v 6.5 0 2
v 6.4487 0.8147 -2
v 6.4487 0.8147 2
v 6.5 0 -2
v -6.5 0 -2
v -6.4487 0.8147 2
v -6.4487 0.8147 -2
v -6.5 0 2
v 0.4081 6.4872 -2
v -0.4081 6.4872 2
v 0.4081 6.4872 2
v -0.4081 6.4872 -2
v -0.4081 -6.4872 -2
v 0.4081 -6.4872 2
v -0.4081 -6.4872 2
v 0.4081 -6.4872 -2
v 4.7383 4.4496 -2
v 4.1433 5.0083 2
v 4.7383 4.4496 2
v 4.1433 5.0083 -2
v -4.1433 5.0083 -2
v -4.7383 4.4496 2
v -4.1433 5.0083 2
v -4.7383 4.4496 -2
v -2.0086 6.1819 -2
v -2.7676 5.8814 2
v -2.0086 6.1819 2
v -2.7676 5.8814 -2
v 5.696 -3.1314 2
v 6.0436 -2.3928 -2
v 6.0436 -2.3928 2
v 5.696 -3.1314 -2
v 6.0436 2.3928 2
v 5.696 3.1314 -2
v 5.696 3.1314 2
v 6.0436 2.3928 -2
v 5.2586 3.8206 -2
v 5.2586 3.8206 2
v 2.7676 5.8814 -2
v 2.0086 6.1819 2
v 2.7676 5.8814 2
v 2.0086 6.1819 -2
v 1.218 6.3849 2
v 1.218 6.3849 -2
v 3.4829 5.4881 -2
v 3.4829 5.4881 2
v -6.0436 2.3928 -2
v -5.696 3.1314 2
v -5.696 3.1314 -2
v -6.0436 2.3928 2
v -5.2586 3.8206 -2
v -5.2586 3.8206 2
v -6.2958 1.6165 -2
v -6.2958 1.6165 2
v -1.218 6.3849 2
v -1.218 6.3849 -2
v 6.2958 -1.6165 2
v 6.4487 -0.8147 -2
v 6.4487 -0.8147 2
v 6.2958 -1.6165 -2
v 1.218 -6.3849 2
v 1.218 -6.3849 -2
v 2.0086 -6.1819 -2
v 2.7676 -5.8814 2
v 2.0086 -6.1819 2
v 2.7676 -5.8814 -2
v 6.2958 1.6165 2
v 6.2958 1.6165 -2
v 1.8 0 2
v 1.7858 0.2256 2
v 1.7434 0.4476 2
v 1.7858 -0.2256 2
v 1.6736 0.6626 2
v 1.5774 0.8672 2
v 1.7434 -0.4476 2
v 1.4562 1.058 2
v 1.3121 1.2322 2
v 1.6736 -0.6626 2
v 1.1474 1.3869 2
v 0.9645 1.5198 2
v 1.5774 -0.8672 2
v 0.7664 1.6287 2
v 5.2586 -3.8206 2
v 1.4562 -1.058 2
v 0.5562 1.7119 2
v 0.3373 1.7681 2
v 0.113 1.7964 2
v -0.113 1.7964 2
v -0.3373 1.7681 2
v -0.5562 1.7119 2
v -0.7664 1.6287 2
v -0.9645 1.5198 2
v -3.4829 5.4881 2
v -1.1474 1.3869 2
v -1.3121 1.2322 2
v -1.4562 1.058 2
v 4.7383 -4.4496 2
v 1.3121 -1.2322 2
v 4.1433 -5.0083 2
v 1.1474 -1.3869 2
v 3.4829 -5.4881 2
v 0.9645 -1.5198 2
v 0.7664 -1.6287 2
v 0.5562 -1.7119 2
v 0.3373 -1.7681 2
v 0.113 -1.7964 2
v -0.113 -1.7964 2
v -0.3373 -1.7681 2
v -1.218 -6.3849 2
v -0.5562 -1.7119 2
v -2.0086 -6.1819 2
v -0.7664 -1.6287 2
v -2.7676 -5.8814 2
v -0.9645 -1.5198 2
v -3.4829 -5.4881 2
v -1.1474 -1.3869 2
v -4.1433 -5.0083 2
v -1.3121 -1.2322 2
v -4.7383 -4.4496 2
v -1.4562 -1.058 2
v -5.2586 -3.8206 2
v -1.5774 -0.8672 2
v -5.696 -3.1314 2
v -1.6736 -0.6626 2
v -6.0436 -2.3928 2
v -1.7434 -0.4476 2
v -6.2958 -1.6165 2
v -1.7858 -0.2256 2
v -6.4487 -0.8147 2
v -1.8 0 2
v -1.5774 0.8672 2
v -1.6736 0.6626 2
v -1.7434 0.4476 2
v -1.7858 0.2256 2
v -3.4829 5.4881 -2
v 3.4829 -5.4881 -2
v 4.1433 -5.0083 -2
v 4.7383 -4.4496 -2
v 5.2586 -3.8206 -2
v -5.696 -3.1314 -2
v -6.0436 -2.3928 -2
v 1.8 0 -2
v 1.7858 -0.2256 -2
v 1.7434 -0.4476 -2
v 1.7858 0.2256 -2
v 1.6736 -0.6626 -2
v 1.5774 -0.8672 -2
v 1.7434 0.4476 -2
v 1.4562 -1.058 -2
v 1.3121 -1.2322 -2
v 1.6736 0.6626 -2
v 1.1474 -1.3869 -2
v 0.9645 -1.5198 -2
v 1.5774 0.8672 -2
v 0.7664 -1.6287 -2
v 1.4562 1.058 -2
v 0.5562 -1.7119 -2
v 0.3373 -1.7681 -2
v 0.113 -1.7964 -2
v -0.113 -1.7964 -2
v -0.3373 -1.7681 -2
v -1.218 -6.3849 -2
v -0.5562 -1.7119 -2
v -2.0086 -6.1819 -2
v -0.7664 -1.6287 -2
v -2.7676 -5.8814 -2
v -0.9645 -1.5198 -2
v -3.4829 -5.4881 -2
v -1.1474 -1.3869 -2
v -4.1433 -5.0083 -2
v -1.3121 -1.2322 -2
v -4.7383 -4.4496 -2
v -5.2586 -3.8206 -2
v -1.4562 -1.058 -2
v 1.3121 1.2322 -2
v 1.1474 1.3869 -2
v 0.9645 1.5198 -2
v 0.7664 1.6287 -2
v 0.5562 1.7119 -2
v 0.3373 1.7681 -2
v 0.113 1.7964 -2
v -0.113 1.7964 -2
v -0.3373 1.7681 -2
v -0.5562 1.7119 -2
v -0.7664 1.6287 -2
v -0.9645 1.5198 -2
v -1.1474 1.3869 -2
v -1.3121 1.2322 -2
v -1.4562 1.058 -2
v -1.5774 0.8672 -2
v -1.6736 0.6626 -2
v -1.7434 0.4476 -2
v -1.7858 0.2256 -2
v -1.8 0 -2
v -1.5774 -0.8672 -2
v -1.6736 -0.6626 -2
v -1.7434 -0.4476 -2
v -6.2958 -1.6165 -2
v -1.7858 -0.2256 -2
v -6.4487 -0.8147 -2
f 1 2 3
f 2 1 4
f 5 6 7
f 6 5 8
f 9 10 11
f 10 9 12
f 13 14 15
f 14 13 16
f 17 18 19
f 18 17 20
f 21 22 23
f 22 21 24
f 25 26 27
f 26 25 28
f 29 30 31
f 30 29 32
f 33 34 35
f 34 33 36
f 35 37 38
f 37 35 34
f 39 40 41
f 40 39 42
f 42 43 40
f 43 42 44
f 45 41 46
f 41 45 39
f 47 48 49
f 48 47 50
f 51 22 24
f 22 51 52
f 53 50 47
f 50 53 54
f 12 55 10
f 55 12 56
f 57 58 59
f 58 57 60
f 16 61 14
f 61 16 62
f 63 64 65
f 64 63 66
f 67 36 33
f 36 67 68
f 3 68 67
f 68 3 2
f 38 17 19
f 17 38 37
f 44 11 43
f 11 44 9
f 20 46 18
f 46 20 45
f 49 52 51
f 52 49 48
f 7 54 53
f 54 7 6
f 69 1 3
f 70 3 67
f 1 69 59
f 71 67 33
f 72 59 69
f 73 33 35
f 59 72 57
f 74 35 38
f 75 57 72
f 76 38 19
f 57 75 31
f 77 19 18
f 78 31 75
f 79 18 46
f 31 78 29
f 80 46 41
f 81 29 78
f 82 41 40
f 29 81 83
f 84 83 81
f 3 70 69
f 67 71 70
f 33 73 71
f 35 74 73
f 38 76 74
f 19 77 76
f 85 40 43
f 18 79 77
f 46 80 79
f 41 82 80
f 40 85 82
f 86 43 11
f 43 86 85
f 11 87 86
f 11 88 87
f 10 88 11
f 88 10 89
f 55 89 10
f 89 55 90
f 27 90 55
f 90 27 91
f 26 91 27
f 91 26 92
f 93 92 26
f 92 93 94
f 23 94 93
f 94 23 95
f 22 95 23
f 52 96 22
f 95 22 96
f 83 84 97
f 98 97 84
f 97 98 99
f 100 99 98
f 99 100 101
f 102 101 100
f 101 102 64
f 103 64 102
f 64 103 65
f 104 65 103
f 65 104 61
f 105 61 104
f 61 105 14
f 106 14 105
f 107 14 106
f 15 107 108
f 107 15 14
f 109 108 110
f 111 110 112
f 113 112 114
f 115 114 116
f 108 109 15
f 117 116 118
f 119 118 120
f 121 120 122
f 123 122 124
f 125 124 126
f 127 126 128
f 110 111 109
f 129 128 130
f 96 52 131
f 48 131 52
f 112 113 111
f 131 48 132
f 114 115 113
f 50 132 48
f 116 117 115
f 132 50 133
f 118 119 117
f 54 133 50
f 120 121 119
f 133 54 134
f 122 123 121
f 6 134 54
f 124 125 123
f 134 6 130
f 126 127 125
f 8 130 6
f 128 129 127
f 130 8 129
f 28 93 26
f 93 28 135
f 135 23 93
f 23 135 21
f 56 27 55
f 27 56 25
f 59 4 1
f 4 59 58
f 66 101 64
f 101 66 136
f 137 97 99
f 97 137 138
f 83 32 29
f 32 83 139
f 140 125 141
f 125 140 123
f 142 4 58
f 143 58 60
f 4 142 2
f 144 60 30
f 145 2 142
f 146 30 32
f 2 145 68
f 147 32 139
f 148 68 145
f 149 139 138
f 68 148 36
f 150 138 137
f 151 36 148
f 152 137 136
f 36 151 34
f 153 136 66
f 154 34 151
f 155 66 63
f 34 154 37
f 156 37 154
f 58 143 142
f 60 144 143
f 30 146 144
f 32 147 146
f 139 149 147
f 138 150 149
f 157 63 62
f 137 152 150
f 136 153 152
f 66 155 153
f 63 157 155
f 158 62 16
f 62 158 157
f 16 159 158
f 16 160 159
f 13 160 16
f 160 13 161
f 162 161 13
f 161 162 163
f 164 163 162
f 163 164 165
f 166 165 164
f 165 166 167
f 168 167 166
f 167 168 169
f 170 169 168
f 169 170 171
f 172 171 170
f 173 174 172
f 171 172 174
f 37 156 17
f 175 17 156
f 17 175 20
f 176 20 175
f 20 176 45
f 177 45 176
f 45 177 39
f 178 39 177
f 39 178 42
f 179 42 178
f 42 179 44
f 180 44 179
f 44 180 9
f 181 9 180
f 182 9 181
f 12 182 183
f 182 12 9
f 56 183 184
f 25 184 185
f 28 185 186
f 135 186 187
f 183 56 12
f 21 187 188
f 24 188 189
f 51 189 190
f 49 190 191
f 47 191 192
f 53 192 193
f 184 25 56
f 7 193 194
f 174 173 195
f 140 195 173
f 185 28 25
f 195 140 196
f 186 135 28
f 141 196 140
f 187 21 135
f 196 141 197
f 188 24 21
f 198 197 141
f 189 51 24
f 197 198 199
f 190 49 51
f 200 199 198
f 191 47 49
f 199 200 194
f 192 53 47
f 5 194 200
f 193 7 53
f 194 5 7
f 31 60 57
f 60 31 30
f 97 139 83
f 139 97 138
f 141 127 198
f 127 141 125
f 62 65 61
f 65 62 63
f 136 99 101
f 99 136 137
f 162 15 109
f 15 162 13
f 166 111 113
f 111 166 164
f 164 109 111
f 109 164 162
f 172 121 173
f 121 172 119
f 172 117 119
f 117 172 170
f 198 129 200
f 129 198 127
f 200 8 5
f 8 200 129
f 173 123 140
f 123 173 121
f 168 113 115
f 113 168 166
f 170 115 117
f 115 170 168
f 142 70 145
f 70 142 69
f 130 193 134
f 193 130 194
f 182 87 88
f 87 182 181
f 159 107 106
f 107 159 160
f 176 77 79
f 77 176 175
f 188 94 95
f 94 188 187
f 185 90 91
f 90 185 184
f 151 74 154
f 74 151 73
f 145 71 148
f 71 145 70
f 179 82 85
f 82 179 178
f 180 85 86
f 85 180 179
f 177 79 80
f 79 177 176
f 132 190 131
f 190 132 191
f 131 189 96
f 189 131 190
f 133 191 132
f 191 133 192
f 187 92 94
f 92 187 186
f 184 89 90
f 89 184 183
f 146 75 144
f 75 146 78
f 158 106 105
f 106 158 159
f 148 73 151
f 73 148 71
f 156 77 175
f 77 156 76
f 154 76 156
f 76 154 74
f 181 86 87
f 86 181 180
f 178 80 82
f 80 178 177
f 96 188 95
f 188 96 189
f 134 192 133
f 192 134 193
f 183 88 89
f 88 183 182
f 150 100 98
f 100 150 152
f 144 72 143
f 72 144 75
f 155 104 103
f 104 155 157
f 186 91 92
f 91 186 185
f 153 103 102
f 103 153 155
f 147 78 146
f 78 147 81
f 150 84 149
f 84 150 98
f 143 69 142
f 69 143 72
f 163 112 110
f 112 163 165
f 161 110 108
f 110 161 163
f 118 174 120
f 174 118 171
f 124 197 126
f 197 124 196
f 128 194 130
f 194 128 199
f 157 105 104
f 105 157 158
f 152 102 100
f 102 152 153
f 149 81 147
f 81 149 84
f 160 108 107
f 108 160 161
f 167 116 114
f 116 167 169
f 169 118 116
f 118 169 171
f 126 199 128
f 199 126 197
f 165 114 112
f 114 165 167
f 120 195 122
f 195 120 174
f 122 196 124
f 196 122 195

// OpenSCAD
$fn = 50;


difference() {
	union() {
		translate(v = [0, 0, -2.0000000000]) {
			cylinder(h = 4, r = 6.5000000000);
		}
	}
	union() {
		translate(v = [0, 0, -100.0000000000]) {
			cylinder(h = 200, r = 1.8000000000);
		}
	}
}
